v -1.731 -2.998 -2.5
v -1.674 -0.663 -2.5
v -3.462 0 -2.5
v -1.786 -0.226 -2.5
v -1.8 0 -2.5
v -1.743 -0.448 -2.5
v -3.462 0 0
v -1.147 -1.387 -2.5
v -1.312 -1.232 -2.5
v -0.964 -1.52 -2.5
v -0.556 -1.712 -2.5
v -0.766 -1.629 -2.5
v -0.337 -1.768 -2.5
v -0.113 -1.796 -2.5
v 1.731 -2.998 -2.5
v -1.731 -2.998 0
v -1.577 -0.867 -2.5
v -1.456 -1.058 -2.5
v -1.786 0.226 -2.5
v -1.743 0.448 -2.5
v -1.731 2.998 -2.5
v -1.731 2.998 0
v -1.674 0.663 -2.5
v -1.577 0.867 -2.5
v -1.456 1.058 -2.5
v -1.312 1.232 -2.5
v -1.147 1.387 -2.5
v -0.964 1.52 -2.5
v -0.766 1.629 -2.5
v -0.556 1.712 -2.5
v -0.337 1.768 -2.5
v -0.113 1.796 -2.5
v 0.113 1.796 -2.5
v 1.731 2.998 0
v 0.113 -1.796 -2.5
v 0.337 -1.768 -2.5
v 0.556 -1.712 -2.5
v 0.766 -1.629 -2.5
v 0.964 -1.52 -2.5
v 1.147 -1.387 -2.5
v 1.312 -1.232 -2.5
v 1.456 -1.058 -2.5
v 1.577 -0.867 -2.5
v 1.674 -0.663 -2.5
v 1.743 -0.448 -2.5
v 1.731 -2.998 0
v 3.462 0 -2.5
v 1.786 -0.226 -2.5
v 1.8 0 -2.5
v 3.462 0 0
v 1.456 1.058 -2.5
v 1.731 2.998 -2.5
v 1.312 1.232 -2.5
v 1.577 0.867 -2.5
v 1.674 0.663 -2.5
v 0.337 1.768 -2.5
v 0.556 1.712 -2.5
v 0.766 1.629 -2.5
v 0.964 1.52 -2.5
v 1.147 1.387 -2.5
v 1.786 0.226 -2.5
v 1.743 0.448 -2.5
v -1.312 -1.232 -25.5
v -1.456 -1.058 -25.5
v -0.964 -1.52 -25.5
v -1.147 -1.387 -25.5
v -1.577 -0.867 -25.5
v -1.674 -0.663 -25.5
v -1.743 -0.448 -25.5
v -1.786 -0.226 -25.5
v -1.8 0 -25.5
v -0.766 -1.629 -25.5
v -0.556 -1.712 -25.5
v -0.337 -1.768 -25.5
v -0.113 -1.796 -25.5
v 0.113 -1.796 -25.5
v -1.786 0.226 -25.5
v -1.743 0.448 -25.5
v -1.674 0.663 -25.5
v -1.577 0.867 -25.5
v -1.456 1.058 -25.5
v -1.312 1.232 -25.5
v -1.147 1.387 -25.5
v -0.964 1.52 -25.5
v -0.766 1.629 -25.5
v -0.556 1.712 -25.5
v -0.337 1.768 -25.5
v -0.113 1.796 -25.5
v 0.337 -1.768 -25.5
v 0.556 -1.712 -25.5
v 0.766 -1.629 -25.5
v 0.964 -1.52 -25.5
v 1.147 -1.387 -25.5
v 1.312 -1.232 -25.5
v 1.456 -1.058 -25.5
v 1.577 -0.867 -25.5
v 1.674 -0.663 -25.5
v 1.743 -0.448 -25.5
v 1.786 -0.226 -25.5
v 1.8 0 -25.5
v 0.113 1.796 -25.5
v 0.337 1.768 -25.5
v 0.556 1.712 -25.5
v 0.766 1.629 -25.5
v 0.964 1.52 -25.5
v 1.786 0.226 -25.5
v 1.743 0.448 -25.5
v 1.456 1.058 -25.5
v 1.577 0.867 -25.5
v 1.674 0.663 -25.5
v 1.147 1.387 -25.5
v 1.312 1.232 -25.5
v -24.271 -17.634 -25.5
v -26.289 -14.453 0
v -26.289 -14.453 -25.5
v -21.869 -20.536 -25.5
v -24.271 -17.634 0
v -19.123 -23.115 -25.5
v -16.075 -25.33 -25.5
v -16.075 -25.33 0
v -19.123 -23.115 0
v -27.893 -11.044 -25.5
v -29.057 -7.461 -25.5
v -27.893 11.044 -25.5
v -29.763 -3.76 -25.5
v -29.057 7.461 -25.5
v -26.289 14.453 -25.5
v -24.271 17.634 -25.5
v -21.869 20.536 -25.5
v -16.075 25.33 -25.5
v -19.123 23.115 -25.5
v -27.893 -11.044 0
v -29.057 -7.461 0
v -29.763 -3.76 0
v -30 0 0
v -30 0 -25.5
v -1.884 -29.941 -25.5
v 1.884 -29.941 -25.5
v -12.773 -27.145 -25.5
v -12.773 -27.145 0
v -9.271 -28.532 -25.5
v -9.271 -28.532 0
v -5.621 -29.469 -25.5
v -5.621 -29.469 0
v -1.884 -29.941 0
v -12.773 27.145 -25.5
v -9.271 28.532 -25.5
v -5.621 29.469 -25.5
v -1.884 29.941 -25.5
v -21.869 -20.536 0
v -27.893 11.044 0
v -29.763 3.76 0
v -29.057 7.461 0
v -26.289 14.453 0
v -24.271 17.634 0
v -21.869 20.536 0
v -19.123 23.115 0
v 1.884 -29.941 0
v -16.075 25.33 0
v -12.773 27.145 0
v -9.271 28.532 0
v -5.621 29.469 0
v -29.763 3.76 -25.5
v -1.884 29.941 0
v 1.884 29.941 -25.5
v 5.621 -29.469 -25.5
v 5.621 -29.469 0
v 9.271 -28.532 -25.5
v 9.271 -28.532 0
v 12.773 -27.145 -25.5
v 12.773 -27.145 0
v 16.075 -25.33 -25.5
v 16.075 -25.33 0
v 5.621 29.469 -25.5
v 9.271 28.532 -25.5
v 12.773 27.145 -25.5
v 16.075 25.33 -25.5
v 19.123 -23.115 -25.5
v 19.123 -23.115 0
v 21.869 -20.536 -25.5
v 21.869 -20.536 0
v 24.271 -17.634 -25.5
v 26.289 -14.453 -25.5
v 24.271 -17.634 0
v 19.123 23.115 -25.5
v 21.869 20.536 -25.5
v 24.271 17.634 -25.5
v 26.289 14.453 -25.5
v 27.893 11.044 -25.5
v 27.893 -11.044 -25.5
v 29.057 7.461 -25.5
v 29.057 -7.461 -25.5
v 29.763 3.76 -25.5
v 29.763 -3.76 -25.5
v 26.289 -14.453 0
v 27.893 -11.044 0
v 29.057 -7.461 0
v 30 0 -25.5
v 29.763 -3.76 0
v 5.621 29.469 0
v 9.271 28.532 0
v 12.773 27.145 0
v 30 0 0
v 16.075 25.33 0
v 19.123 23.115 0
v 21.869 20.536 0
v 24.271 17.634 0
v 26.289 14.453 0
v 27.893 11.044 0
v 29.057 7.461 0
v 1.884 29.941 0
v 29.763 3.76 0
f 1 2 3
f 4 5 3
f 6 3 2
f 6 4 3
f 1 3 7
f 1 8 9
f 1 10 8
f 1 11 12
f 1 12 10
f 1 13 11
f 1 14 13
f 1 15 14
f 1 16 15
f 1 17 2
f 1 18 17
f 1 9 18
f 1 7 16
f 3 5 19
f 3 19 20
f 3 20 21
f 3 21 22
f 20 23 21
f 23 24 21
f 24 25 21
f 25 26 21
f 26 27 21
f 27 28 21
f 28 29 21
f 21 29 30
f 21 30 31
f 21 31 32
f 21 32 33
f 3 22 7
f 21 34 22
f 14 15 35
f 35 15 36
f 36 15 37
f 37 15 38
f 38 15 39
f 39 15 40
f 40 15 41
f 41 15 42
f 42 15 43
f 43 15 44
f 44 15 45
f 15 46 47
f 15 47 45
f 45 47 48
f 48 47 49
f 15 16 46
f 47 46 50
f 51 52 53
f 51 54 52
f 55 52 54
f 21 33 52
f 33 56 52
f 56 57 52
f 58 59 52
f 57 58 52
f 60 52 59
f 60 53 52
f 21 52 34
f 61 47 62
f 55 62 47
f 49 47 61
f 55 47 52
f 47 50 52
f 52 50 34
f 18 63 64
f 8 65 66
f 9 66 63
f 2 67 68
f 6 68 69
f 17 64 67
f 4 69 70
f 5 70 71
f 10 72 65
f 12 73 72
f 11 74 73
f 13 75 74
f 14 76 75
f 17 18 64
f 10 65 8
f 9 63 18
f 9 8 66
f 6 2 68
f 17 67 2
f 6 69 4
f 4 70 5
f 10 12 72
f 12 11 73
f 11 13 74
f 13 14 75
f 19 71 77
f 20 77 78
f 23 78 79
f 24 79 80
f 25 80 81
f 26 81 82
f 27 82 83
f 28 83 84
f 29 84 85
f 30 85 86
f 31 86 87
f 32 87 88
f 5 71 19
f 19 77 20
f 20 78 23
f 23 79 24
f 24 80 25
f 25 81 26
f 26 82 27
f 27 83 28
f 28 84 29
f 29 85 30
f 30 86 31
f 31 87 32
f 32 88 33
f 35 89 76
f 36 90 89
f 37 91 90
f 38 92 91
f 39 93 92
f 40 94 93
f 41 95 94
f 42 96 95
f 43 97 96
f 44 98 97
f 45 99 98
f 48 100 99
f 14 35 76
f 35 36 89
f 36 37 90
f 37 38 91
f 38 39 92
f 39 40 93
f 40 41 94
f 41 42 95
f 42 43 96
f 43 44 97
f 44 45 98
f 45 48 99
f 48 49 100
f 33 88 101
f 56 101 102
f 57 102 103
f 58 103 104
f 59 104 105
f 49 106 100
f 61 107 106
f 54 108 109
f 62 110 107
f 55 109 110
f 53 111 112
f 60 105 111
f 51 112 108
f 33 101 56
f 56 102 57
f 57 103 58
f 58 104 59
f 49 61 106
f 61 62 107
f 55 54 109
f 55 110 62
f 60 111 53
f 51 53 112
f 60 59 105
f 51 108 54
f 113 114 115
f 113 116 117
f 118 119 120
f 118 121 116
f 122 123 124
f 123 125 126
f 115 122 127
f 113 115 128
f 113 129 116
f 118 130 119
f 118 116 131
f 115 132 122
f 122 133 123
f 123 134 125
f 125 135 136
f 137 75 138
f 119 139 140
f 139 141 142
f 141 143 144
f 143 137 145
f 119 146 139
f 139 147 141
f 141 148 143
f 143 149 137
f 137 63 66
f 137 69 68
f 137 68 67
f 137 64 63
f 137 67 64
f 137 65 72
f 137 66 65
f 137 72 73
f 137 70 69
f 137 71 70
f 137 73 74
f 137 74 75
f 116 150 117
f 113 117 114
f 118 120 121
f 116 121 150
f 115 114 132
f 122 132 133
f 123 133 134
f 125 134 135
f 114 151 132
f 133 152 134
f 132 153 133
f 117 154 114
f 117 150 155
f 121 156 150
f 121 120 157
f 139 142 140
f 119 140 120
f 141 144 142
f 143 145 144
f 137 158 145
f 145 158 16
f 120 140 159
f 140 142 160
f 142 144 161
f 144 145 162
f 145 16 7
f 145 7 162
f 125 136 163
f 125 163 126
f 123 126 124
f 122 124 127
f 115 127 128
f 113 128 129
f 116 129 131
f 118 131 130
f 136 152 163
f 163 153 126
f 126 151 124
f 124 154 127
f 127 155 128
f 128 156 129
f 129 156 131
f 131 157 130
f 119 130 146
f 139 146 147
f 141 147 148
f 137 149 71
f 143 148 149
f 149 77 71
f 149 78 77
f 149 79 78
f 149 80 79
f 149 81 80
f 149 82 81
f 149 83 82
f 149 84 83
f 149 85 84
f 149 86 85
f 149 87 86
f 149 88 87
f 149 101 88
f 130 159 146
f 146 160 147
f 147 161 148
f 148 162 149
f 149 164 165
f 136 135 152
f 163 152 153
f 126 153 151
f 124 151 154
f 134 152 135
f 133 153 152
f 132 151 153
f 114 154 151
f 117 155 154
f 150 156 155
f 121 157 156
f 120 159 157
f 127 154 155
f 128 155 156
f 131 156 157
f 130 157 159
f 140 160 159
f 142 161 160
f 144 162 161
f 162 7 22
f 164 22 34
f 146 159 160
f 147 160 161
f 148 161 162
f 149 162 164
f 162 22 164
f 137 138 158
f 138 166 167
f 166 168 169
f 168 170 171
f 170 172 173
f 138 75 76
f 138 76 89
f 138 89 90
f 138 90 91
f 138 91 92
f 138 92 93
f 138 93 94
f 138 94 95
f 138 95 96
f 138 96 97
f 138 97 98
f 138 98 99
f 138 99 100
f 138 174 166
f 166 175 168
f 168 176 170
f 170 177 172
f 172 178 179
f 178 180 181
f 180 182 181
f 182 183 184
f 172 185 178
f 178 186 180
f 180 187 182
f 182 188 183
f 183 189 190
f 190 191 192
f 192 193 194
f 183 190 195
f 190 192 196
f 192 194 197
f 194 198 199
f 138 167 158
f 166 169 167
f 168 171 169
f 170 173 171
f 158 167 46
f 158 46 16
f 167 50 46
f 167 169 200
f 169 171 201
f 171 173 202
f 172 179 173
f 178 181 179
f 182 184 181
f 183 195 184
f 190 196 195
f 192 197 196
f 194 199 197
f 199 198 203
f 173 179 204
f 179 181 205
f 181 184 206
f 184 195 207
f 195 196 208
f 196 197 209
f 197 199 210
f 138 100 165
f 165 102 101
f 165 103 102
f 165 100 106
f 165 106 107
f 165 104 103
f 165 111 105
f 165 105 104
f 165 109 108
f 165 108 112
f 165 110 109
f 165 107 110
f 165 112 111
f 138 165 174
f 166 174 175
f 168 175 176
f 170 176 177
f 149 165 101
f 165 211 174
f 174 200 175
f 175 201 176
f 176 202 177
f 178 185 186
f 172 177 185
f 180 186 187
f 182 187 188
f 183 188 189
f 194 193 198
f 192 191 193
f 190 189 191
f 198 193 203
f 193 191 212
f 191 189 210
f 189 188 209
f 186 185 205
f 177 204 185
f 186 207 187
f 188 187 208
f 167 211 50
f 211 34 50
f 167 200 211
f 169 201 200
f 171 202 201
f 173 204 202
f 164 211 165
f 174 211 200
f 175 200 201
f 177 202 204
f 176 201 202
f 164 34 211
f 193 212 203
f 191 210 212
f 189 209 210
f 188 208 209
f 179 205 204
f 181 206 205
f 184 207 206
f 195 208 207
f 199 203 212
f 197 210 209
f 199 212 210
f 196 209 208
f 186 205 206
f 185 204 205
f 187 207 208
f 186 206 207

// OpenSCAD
$fn = 50;

difference() {
	union() {
		translate(v = [0, 0, -25.5]) {
			cylinder(h = 25.5, r = 30.0);
		}
	}
	union() {
		translate(v = [0, 0, 0]) {
			rotate(a = [0, 0, 0]) {
				difference() {
					union() {
						translate(v = [0, 0, -2.5]) {
							linear_extrude(height = 2.5) {
								polygon(points = [[3.4619999999999997, 0.0], [1.7310000000000003, 2.9981799479017264], [-1.7309999999999992, 2.9981799479017264], [-3.4619999999999997, 4.2397272186481365e-16], [-1.7310000000000014, -2.998179947901726], [1.7309999999999977, -2.9981799479017277]]);
							}
						}
					}
					union();
				}
			}
		}
		#translate(v = [0, 0, -100.0]) {
			cylinder(h = 200, r = 1.8);
		}
	}
}
